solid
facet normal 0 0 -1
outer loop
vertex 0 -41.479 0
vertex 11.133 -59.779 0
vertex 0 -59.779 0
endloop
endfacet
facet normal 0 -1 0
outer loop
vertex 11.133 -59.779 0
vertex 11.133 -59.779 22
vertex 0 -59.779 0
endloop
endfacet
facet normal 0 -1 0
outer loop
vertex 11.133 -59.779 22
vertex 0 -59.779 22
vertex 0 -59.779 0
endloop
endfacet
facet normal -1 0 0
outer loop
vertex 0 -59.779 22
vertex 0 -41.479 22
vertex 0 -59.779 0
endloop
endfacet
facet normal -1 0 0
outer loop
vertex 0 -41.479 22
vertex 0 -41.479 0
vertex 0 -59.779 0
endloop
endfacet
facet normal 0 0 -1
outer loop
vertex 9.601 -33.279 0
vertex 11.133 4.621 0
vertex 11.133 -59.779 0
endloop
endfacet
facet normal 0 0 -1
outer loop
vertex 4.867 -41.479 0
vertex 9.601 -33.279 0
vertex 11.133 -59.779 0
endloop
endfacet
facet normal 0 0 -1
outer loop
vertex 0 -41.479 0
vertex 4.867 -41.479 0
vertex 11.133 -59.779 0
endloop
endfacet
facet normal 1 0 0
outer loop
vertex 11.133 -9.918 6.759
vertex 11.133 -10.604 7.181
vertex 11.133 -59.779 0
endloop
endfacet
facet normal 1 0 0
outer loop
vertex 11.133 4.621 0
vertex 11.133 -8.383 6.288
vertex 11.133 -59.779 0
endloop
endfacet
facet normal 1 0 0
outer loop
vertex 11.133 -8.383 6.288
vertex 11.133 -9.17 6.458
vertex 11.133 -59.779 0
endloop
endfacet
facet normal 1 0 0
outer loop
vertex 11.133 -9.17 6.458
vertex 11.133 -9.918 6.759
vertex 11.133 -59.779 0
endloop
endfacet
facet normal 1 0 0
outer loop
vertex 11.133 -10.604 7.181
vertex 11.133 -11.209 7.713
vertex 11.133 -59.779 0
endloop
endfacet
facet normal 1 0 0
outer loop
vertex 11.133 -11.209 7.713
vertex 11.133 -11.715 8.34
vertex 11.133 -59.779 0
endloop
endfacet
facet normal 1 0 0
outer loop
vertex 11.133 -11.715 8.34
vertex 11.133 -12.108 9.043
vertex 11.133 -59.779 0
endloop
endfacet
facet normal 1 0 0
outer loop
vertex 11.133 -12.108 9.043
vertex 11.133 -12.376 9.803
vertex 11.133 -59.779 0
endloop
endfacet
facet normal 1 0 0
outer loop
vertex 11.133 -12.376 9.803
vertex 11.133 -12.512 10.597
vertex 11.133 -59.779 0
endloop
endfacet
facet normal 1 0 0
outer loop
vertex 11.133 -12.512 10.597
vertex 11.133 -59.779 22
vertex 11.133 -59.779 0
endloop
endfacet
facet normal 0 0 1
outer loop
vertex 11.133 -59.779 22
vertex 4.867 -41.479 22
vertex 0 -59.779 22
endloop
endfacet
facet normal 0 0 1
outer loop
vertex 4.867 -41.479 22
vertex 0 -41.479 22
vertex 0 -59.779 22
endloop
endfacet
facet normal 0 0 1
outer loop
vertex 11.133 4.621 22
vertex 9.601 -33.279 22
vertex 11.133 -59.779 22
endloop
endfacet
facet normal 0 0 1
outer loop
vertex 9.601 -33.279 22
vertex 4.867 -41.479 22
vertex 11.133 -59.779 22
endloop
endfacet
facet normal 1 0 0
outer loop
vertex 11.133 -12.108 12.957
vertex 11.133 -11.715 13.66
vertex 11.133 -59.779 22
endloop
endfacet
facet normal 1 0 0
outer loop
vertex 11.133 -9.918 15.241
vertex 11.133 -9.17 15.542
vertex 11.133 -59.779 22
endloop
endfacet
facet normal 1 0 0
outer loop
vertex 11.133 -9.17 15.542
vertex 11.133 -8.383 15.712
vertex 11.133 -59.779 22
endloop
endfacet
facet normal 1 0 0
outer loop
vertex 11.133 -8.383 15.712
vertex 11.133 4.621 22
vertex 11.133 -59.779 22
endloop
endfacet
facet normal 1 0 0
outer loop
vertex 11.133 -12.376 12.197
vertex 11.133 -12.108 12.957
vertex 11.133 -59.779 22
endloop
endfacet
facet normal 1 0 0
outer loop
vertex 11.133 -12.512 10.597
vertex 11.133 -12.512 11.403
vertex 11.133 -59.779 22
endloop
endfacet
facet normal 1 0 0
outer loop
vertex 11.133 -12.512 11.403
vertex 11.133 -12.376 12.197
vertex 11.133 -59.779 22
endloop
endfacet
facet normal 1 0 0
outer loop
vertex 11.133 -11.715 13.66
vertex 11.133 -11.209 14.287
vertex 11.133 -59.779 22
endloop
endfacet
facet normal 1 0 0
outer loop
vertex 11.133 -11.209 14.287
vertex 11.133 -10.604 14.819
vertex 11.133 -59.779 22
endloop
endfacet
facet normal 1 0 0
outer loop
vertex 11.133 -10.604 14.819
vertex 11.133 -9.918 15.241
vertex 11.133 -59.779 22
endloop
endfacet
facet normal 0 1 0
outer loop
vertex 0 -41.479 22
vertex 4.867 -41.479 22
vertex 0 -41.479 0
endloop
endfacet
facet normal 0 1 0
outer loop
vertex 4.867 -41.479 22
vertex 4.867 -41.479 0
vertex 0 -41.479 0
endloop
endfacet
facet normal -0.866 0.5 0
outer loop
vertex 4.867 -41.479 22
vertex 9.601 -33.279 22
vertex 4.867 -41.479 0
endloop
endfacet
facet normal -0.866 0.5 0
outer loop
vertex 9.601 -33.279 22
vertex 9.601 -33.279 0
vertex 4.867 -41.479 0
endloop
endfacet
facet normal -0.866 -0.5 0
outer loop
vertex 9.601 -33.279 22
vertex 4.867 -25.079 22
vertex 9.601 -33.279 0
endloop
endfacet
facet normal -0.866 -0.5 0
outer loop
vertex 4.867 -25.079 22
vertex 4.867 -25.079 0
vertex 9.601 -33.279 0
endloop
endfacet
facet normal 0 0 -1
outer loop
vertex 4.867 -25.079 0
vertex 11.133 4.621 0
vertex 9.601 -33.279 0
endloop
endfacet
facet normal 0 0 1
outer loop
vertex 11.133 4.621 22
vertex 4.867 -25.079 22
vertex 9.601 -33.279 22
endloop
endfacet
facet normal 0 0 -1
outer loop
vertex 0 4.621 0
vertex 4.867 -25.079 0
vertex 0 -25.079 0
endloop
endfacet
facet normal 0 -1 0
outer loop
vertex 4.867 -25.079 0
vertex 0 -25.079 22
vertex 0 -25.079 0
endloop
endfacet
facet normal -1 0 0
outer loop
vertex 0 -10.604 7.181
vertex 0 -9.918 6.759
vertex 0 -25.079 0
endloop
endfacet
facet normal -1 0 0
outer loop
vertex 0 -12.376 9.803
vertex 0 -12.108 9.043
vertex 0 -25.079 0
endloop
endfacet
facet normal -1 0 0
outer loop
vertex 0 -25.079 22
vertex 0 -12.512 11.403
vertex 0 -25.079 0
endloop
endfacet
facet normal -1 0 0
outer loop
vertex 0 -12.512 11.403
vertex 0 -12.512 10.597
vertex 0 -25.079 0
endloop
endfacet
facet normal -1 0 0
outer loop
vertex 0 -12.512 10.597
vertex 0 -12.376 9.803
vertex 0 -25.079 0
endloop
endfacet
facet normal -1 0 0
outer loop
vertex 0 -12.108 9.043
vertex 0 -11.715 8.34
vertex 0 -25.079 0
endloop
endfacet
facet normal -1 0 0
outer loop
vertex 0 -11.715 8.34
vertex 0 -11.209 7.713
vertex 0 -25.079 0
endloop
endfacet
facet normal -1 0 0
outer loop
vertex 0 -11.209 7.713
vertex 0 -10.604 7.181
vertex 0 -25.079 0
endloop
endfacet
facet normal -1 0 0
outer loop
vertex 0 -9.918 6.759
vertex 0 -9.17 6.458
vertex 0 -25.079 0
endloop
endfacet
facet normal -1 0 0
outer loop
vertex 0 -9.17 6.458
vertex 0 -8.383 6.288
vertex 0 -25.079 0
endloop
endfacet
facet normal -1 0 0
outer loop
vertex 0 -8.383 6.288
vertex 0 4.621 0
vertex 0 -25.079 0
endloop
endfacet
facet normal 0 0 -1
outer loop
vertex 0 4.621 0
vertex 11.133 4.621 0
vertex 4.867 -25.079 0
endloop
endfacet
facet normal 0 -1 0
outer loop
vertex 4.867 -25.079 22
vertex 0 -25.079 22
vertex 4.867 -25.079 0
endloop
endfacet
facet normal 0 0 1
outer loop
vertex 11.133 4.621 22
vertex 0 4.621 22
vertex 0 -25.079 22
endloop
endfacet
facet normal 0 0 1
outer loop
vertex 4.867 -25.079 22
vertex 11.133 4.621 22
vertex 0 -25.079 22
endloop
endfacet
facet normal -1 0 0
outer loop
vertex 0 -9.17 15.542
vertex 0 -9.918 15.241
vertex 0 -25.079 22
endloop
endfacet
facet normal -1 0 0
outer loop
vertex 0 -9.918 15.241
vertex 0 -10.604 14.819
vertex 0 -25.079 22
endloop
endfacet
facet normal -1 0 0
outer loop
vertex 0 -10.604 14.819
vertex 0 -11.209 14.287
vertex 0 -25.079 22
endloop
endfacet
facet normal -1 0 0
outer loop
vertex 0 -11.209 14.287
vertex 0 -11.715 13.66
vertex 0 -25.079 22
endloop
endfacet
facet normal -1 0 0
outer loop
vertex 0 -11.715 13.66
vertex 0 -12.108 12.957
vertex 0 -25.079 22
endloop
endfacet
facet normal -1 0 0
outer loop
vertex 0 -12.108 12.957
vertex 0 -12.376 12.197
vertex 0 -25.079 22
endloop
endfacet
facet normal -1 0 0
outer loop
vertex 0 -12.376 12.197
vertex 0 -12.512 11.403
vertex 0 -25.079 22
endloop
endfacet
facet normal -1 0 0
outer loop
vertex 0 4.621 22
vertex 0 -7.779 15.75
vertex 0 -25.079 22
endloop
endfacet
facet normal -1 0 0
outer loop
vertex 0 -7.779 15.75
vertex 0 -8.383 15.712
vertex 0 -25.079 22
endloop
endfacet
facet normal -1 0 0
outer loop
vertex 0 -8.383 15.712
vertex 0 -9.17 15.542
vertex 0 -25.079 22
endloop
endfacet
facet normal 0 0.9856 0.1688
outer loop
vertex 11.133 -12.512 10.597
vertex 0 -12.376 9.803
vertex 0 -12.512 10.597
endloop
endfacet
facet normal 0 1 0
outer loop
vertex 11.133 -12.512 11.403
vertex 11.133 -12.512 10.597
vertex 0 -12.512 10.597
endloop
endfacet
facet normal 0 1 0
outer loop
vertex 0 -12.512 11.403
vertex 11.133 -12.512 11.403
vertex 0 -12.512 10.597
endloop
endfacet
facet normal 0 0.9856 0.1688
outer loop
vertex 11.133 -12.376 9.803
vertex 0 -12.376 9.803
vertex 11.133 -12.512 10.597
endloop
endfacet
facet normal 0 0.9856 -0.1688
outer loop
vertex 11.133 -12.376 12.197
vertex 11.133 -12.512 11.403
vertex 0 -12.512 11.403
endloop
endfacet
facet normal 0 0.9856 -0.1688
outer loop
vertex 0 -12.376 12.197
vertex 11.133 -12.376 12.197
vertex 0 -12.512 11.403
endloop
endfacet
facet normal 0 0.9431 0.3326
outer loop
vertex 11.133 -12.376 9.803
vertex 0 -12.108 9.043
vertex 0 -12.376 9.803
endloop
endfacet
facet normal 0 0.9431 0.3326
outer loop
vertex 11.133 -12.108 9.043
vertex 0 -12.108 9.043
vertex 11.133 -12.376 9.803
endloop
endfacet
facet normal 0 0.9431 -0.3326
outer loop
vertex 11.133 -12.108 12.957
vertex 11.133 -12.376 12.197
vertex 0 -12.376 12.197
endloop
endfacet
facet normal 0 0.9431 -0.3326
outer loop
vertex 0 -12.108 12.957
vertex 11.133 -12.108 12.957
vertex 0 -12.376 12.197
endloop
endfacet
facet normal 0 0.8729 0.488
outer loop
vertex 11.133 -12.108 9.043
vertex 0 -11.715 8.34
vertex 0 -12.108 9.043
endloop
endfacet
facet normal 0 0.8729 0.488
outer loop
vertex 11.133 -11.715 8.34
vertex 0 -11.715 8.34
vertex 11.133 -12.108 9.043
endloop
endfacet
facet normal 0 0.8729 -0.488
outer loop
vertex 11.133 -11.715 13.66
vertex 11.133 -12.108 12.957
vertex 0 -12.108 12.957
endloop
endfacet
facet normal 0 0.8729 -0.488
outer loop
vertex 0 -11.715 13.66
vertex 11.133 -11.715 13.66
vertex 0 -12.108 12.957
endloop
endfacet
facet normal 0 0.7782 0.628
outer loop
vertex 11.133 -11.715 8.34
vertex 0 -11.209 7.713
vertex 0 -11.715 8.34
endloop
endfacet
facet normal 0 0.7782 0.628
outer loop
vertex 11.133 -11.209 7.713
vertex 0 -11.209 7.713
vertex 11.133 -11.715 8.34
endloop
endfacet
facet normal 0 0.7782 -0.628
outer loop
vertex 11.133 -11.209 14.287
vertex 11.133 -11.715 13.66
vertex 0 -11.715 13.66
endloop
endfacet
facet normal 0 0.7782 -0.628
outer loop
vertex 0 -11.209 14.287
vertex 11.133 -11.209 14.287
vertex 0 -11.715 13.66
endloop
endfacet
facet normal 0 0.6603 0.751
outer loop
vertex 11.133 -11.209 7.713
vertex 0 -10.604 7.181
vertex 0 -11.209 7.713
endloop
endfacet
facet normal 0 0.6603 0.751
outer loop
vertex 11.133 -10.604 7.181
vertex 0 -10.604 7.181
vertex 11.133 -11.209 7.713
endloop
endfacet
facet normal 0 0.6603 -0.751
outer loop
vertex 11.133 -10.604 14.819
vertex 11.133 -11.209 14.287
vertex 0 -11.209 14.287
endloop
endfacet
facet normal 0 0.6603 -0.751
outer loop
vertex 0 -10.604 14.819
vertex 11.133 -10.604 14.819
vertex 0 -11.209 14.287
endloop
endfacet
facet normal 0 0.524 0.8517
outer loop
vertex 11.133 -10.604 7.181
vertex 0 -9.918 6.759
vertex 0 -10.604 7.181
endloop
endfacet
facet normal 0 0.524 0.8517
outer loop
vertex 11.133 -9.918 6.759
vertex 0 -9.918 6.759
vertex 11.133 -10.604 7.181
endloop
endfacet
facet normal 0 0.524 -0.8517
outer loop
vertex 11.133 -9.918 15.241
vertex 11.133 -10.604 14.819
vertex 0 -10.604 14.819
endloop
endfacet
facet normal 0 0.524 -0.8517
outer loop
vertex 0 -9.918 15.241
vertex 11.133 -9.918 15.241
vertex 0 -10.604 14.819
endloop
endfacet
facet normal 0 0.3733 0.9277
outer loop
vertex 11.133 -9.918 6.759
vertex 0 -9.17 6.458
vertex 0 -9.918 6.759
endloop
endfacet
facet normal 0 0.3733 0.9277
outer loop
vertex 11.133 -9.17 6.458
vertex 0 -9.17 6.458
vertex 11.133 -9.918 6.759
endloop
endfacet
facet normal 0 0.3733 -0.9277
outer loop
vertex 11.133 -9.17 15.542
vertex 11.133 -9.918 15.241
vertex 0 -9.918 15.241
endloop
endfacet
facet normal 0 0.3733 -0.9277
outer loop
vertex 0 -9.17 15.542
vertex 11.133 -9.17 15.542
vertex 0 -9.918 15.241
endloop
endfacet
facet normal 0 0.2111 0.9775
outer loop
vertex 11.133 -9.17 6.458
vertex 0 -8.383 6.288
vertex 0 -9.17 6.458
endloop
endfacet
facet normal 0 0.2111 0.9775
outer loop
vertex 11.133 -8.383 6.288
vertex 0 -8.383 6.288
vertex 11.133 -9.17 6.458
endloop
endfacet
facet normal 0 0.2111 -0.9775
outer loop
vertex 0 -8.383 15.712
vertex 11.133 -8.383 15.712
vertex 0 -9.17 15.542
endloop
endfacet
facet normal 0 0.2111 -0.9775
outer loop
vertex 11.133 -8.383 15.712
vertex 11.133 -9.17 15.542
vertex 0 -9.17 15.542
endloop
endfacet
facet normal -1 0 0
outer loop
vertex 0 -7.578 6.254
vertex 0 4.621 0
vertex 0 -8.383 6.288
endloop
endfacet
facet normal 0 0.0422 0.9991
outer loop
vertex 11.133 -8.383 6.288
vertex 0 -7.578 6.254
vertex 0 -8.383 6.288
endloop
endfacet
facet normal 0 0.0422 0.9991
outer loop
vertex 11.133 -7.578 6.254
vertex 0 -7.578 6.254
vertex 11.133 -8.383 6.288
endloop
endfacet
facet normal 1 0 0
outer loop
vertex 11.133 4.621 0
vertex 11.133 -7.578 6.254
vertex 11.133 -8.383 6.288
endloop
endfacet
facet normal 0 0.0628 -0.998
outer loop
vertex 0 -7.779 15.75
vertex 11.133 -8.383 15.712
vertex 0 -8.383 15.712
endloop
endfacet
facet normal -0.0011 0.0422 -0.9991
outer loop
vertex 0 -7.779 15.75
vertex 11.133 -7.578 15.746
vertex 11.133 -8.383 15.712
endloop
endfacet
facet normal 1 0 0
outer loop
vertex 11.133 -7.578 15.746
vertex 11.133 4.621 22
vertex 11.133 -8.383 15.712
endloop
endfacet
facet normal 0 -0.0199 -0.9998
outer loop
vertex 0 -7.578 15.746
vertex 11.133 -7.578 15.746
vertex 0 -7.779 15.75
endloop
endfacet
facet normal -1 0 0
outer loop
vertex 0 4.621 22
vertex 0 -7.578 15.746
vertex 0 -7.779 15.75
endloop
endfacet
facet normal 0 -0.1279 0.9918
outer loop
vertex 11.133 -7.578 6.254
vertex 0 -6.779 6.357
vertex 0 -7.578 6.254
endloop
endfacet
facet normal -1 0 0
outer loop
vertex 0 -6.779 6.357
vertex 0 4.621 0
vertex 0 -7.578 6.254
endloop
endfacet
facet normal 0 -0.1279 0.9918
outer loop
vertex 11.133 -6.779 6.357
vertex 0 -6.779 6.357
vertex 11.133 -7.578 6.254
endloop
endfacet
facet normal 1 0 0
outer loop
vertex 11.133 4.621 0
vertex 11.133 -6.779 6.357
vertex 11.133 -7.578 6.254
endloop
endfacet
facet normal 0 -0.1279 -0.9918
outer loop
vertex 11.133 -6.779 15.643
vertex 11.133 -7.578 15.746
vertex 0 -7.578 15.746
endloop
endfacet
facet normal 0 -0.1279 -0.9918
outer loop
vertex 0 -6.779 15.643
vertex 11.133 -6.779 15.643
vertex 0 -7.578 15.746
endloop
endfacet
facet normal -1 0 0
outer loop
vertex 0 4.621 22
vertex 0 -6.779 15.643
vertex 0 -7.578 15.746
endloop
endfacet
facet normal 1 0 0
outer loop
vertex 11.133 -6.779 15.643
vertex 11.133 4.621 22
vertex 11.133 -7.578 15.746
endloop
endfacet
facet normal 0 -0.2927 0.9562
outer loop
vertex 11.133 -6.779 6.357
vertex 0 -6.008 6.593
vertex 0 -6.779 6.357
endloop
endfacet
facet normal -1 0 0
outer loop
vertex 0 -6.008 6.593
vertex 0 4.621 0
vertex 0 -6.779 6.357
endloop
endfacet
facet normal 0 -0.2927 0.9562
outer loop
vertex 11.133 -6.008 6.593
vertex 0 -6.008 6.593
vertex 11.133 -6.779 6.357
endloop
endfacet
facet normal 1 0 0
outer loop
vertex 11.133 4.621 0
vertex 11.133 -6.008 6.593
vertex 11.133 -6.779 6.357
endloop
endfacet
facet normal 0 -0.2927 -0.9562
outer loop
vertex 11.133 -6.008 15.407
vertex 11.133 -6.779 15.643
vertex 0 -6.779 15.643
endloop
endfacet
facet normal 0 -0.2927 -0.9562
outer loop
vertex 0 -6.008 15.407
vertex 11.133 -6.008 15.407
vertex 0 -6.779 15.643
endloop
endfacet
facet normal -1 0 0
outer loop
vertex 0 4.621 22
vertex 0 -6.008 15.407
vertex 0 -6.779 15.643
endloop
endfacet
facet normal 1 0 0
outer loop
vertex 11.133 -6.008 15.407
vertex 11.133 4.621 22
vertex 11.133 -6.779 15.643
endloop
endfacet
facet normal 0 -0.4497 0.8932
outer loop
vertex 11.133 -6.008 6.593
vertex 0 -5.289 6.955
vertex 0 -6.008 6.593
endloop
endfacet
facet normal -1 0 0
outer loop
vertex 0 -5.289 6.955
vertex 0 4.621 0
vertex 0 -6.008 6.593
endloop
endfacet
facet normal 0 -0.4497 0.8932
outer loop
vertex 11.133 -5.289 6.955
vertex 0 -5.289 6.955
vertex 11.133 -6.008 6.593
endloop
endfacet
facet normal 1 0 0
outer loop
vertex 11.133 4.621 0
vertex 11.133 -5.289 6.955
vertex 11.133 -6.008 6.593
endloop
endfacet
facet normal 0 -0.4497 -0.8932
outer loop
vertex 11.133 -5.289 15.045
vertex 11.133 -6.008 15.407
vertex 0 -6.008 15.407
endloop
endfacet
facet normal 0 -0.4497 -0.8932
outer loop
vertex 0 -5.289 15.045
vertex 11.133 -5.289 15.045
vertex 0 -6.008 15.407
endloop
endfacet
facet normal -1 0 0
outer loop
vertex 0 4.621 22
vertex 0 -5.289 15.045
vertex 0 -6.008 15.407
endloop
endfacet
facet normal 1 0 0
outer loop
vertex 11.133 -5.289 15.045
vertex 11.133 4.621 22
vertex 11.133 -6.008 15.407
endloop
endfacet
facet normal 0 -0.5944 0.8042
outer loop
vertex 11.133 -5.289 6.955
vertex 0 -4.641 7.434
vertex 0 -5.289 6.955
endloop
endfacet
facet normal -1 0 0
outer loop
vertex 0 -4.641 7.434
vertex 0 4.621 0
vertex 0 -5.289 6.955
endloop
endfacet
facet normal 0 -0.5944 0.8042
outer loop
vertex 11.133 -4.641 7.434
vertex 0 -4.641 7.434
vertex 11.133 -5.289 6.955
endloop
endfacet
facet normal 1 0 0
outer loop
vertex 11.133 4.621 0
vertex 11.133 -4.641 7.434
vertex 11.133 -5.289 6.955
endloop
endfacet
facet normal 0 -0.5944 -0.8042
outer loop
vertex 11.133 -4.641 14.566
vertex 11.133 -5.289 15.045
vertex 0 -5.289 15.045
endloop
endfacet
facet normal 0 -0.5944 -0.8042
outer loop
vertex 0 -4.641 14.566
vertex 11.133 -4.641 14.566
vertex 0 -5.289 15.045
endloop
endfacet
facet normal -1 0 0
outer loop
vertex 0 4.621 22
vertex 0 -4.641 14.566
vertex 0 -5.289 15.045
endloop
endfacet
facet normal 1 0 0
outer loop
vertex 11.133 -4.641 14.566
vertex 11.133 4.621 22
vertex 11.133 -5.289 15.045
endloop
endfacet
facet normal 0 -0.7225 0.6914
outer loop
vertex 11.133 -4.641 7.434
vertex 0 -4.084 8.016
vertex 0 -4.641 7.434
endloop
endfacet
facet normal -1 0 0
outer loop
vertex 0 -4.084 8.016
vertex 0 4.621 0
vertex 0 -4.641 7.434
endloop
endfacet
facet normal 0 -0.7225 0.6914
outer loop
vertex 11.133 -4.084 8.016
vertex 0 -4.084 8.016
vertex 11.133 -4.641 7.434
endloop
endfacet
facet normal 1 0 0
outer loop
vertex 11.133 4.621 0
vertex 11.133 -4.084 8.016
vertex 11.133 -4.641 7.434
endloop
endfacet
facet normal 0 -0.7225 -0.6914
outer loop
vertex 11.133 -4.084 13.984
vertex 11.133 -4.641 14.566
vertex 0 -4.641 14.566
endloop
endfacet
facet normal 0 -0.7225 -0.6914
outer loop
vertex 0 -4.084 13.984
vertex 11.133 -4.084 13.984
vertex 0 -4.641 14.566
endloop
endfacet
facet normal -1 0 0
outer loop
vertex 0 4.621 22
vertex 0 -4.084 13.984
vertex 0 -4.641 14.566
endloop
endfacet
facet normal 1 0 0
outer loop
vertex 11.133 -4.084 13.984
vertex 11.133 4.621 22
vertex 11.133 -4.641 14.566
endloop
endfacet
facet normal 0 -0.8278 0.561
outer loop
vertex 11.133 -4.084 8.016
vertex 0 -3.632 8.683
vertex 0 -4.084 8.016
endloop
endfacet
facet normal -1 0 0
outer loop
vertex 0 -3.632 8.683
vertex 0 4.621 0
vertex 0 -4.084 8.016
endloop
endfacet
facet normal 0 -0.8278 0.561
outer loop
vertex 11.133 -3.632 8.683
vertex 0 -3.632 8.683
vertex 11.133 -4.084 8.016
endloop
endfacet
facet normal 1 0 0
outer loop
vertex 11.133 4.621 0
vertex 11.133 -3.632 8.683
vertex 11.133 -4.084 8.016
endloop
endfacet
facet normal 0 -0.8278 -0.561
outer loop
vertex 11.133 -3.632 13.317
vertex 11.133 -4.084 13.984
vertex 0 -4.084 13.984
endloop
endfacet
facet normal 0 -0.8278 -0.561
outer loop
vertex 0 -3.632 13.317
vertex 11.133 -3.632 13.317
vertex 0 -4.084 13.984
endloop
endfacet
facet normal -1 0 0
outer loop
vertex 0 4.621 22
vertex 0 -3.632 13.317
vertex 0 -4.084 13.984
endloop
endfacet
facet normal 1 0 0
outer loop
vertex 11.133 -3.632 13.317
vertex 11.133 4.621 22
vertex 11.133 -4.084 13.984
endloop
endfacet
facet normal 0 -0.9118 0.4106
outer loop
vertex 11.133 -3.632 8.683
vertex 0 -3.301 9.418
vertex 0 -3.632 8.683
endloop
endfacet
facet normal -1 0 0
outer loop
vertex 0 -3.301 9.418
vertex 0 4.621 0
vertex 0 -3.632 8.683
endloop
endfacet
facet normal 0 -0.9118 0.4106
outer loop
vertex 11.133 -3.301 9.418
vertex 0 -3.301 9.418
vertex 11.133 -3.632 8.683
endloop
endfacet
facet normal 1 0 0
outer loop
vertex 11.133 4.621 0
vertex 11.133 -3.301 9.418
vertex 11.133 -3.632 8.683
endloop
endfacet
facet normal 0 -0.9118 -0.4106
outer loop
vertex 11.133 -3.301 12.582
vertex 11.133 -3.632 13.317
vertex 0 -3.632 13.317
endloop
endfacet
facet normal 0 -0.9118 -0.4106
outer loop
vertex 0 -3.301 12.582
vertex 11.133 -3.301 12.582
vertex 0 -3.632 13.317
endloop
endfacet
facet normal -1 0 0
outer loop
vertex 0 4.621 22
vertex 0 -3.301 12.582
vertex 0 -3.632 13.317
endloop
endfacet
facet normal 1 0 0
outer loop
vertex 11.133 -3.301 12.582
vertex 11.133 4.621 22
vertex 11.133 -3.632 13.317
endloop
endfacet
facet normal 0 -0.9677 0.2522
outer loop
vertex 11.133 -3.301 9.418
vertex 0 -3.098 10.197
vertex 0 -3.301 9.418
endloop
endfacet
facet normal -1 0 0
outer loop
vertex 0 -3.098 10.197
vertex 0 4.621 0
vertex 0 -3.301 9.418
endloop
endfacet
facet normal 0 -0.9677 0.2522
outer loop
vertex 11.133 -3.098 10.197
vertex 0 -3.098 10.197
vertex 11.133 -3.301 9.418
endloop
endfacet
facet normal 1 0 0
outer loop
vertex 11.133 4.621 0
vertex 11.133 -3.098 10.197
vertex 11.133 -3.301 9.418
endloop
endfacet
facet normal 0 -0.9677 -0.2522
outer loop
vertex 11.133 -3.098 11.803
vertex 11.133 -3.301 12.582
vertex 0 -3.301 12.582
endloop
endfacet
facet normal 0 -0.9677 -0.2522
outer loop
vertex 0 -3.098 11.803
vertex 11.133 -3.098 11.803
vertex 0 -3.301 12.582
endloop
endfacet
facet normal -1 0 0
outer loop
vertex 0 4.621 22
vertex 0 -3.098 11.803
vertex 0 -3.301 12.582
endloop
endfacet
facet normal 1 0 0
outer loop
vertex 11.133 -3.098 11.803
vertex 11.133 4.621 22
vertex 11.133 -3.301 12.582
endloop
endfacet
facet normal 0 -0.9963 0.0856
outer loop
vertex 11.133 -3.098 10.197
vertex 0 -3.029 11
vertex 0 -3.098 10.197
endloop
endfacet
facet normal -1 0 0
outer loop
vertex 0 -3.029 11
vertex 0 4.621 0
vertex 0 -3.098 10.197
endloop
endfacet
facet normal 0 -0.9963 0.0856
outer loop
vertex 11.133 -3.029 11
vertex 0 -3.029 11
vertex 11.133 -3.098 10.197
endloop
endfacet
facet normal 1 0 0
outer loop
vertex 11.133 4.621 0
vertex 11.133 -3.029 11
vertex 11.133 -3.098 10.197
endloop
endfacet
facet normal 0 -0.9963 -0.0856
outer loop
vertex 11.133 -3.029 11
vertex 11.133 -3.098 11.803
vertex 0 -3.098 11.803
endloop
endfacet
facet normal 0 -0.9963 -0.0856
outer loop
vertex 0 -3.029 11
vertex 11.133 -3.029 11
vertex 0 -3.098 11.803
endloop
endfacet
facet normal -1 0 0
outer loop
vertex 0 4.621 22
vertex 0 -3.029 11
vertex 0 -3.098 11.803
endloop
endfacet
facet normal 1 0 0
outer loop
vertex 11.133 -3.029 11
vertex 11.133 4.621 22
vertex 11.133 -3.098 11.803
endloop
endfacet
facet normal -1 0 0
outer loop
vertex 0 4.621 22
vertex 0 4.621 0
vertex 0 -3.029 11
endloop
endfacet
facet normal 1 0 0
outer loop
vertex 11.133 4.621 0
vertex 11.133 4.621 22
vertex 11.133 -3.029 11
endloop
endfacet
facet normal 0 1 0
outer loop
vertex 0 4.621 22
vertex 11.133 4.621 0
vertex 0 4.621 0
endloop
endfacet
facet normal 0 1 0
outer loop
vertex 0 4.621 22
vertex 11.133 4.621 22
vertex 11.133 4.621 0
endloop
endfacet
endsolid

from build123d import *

# Parameters (mm, degrees)
SKETCH_1_W          = 22
SKETCH_1_H          = 64.4
EXTRUDE_1_DEPTH     = 22
SKETCH_2_R          = 4.75
CUT_EXTRUDE_1_DEPTH = 22
SKETCH_3_W          = 22
SKETCH_3_H          = 64.4
CUT_EXTRUDE_2_DEPTH = 11


with BuildPart() as part:
    # 草圖1 → 填料-伸長1 (new body)
    with BuildSketch(Plane.XY):
        with Locations((0.13253012, -27.579314659)):
            Rectangle(SKETCH_1_W, SKETCH_1_H)
        Polygon((9.601074535, -33.279314659), (4.866802328, -25.079314659), (-4.601742087, -25.079314659), (-9.336014294, -33.279314659), (-4.601742087, -41.479314659), (4.866802328, -41.479314659), align=None, mode=Mode.SUBTRACT)
    extrude(amount=EXTRUDE_1_DEPTH)

    # 草圖2 → 除料-伸長1 (cut)
    with BuildSketch(Plane(origin=(11.13253012, 0, 0), x_dir=(0, 0, -1), z_dir=(1, 0, 0))):
        with Locations((-11, -7.779314659)):
            Circle(SKETCH_2_R)
    extrude(amount=-CUT_EXTRUDE_1_DEPTH, mode=Mode.SUBTRACT)

    # 草圖3 → 除料-伸長2 (cut)
    with BuildSketch(Plane(origin=(0, 0, 0), x_dir=(0, 0, -1), z_dir=(1, 0, 0))):
        with Locations((-11, -27.579314659)):
            Rectangle(SKETCH_3_W, SKETCH_3_H)
    extrude(amount=-CUT_EXTRUDE_2_DEPTH, mode=Mode.SUBTRACT)


solid = part.part
